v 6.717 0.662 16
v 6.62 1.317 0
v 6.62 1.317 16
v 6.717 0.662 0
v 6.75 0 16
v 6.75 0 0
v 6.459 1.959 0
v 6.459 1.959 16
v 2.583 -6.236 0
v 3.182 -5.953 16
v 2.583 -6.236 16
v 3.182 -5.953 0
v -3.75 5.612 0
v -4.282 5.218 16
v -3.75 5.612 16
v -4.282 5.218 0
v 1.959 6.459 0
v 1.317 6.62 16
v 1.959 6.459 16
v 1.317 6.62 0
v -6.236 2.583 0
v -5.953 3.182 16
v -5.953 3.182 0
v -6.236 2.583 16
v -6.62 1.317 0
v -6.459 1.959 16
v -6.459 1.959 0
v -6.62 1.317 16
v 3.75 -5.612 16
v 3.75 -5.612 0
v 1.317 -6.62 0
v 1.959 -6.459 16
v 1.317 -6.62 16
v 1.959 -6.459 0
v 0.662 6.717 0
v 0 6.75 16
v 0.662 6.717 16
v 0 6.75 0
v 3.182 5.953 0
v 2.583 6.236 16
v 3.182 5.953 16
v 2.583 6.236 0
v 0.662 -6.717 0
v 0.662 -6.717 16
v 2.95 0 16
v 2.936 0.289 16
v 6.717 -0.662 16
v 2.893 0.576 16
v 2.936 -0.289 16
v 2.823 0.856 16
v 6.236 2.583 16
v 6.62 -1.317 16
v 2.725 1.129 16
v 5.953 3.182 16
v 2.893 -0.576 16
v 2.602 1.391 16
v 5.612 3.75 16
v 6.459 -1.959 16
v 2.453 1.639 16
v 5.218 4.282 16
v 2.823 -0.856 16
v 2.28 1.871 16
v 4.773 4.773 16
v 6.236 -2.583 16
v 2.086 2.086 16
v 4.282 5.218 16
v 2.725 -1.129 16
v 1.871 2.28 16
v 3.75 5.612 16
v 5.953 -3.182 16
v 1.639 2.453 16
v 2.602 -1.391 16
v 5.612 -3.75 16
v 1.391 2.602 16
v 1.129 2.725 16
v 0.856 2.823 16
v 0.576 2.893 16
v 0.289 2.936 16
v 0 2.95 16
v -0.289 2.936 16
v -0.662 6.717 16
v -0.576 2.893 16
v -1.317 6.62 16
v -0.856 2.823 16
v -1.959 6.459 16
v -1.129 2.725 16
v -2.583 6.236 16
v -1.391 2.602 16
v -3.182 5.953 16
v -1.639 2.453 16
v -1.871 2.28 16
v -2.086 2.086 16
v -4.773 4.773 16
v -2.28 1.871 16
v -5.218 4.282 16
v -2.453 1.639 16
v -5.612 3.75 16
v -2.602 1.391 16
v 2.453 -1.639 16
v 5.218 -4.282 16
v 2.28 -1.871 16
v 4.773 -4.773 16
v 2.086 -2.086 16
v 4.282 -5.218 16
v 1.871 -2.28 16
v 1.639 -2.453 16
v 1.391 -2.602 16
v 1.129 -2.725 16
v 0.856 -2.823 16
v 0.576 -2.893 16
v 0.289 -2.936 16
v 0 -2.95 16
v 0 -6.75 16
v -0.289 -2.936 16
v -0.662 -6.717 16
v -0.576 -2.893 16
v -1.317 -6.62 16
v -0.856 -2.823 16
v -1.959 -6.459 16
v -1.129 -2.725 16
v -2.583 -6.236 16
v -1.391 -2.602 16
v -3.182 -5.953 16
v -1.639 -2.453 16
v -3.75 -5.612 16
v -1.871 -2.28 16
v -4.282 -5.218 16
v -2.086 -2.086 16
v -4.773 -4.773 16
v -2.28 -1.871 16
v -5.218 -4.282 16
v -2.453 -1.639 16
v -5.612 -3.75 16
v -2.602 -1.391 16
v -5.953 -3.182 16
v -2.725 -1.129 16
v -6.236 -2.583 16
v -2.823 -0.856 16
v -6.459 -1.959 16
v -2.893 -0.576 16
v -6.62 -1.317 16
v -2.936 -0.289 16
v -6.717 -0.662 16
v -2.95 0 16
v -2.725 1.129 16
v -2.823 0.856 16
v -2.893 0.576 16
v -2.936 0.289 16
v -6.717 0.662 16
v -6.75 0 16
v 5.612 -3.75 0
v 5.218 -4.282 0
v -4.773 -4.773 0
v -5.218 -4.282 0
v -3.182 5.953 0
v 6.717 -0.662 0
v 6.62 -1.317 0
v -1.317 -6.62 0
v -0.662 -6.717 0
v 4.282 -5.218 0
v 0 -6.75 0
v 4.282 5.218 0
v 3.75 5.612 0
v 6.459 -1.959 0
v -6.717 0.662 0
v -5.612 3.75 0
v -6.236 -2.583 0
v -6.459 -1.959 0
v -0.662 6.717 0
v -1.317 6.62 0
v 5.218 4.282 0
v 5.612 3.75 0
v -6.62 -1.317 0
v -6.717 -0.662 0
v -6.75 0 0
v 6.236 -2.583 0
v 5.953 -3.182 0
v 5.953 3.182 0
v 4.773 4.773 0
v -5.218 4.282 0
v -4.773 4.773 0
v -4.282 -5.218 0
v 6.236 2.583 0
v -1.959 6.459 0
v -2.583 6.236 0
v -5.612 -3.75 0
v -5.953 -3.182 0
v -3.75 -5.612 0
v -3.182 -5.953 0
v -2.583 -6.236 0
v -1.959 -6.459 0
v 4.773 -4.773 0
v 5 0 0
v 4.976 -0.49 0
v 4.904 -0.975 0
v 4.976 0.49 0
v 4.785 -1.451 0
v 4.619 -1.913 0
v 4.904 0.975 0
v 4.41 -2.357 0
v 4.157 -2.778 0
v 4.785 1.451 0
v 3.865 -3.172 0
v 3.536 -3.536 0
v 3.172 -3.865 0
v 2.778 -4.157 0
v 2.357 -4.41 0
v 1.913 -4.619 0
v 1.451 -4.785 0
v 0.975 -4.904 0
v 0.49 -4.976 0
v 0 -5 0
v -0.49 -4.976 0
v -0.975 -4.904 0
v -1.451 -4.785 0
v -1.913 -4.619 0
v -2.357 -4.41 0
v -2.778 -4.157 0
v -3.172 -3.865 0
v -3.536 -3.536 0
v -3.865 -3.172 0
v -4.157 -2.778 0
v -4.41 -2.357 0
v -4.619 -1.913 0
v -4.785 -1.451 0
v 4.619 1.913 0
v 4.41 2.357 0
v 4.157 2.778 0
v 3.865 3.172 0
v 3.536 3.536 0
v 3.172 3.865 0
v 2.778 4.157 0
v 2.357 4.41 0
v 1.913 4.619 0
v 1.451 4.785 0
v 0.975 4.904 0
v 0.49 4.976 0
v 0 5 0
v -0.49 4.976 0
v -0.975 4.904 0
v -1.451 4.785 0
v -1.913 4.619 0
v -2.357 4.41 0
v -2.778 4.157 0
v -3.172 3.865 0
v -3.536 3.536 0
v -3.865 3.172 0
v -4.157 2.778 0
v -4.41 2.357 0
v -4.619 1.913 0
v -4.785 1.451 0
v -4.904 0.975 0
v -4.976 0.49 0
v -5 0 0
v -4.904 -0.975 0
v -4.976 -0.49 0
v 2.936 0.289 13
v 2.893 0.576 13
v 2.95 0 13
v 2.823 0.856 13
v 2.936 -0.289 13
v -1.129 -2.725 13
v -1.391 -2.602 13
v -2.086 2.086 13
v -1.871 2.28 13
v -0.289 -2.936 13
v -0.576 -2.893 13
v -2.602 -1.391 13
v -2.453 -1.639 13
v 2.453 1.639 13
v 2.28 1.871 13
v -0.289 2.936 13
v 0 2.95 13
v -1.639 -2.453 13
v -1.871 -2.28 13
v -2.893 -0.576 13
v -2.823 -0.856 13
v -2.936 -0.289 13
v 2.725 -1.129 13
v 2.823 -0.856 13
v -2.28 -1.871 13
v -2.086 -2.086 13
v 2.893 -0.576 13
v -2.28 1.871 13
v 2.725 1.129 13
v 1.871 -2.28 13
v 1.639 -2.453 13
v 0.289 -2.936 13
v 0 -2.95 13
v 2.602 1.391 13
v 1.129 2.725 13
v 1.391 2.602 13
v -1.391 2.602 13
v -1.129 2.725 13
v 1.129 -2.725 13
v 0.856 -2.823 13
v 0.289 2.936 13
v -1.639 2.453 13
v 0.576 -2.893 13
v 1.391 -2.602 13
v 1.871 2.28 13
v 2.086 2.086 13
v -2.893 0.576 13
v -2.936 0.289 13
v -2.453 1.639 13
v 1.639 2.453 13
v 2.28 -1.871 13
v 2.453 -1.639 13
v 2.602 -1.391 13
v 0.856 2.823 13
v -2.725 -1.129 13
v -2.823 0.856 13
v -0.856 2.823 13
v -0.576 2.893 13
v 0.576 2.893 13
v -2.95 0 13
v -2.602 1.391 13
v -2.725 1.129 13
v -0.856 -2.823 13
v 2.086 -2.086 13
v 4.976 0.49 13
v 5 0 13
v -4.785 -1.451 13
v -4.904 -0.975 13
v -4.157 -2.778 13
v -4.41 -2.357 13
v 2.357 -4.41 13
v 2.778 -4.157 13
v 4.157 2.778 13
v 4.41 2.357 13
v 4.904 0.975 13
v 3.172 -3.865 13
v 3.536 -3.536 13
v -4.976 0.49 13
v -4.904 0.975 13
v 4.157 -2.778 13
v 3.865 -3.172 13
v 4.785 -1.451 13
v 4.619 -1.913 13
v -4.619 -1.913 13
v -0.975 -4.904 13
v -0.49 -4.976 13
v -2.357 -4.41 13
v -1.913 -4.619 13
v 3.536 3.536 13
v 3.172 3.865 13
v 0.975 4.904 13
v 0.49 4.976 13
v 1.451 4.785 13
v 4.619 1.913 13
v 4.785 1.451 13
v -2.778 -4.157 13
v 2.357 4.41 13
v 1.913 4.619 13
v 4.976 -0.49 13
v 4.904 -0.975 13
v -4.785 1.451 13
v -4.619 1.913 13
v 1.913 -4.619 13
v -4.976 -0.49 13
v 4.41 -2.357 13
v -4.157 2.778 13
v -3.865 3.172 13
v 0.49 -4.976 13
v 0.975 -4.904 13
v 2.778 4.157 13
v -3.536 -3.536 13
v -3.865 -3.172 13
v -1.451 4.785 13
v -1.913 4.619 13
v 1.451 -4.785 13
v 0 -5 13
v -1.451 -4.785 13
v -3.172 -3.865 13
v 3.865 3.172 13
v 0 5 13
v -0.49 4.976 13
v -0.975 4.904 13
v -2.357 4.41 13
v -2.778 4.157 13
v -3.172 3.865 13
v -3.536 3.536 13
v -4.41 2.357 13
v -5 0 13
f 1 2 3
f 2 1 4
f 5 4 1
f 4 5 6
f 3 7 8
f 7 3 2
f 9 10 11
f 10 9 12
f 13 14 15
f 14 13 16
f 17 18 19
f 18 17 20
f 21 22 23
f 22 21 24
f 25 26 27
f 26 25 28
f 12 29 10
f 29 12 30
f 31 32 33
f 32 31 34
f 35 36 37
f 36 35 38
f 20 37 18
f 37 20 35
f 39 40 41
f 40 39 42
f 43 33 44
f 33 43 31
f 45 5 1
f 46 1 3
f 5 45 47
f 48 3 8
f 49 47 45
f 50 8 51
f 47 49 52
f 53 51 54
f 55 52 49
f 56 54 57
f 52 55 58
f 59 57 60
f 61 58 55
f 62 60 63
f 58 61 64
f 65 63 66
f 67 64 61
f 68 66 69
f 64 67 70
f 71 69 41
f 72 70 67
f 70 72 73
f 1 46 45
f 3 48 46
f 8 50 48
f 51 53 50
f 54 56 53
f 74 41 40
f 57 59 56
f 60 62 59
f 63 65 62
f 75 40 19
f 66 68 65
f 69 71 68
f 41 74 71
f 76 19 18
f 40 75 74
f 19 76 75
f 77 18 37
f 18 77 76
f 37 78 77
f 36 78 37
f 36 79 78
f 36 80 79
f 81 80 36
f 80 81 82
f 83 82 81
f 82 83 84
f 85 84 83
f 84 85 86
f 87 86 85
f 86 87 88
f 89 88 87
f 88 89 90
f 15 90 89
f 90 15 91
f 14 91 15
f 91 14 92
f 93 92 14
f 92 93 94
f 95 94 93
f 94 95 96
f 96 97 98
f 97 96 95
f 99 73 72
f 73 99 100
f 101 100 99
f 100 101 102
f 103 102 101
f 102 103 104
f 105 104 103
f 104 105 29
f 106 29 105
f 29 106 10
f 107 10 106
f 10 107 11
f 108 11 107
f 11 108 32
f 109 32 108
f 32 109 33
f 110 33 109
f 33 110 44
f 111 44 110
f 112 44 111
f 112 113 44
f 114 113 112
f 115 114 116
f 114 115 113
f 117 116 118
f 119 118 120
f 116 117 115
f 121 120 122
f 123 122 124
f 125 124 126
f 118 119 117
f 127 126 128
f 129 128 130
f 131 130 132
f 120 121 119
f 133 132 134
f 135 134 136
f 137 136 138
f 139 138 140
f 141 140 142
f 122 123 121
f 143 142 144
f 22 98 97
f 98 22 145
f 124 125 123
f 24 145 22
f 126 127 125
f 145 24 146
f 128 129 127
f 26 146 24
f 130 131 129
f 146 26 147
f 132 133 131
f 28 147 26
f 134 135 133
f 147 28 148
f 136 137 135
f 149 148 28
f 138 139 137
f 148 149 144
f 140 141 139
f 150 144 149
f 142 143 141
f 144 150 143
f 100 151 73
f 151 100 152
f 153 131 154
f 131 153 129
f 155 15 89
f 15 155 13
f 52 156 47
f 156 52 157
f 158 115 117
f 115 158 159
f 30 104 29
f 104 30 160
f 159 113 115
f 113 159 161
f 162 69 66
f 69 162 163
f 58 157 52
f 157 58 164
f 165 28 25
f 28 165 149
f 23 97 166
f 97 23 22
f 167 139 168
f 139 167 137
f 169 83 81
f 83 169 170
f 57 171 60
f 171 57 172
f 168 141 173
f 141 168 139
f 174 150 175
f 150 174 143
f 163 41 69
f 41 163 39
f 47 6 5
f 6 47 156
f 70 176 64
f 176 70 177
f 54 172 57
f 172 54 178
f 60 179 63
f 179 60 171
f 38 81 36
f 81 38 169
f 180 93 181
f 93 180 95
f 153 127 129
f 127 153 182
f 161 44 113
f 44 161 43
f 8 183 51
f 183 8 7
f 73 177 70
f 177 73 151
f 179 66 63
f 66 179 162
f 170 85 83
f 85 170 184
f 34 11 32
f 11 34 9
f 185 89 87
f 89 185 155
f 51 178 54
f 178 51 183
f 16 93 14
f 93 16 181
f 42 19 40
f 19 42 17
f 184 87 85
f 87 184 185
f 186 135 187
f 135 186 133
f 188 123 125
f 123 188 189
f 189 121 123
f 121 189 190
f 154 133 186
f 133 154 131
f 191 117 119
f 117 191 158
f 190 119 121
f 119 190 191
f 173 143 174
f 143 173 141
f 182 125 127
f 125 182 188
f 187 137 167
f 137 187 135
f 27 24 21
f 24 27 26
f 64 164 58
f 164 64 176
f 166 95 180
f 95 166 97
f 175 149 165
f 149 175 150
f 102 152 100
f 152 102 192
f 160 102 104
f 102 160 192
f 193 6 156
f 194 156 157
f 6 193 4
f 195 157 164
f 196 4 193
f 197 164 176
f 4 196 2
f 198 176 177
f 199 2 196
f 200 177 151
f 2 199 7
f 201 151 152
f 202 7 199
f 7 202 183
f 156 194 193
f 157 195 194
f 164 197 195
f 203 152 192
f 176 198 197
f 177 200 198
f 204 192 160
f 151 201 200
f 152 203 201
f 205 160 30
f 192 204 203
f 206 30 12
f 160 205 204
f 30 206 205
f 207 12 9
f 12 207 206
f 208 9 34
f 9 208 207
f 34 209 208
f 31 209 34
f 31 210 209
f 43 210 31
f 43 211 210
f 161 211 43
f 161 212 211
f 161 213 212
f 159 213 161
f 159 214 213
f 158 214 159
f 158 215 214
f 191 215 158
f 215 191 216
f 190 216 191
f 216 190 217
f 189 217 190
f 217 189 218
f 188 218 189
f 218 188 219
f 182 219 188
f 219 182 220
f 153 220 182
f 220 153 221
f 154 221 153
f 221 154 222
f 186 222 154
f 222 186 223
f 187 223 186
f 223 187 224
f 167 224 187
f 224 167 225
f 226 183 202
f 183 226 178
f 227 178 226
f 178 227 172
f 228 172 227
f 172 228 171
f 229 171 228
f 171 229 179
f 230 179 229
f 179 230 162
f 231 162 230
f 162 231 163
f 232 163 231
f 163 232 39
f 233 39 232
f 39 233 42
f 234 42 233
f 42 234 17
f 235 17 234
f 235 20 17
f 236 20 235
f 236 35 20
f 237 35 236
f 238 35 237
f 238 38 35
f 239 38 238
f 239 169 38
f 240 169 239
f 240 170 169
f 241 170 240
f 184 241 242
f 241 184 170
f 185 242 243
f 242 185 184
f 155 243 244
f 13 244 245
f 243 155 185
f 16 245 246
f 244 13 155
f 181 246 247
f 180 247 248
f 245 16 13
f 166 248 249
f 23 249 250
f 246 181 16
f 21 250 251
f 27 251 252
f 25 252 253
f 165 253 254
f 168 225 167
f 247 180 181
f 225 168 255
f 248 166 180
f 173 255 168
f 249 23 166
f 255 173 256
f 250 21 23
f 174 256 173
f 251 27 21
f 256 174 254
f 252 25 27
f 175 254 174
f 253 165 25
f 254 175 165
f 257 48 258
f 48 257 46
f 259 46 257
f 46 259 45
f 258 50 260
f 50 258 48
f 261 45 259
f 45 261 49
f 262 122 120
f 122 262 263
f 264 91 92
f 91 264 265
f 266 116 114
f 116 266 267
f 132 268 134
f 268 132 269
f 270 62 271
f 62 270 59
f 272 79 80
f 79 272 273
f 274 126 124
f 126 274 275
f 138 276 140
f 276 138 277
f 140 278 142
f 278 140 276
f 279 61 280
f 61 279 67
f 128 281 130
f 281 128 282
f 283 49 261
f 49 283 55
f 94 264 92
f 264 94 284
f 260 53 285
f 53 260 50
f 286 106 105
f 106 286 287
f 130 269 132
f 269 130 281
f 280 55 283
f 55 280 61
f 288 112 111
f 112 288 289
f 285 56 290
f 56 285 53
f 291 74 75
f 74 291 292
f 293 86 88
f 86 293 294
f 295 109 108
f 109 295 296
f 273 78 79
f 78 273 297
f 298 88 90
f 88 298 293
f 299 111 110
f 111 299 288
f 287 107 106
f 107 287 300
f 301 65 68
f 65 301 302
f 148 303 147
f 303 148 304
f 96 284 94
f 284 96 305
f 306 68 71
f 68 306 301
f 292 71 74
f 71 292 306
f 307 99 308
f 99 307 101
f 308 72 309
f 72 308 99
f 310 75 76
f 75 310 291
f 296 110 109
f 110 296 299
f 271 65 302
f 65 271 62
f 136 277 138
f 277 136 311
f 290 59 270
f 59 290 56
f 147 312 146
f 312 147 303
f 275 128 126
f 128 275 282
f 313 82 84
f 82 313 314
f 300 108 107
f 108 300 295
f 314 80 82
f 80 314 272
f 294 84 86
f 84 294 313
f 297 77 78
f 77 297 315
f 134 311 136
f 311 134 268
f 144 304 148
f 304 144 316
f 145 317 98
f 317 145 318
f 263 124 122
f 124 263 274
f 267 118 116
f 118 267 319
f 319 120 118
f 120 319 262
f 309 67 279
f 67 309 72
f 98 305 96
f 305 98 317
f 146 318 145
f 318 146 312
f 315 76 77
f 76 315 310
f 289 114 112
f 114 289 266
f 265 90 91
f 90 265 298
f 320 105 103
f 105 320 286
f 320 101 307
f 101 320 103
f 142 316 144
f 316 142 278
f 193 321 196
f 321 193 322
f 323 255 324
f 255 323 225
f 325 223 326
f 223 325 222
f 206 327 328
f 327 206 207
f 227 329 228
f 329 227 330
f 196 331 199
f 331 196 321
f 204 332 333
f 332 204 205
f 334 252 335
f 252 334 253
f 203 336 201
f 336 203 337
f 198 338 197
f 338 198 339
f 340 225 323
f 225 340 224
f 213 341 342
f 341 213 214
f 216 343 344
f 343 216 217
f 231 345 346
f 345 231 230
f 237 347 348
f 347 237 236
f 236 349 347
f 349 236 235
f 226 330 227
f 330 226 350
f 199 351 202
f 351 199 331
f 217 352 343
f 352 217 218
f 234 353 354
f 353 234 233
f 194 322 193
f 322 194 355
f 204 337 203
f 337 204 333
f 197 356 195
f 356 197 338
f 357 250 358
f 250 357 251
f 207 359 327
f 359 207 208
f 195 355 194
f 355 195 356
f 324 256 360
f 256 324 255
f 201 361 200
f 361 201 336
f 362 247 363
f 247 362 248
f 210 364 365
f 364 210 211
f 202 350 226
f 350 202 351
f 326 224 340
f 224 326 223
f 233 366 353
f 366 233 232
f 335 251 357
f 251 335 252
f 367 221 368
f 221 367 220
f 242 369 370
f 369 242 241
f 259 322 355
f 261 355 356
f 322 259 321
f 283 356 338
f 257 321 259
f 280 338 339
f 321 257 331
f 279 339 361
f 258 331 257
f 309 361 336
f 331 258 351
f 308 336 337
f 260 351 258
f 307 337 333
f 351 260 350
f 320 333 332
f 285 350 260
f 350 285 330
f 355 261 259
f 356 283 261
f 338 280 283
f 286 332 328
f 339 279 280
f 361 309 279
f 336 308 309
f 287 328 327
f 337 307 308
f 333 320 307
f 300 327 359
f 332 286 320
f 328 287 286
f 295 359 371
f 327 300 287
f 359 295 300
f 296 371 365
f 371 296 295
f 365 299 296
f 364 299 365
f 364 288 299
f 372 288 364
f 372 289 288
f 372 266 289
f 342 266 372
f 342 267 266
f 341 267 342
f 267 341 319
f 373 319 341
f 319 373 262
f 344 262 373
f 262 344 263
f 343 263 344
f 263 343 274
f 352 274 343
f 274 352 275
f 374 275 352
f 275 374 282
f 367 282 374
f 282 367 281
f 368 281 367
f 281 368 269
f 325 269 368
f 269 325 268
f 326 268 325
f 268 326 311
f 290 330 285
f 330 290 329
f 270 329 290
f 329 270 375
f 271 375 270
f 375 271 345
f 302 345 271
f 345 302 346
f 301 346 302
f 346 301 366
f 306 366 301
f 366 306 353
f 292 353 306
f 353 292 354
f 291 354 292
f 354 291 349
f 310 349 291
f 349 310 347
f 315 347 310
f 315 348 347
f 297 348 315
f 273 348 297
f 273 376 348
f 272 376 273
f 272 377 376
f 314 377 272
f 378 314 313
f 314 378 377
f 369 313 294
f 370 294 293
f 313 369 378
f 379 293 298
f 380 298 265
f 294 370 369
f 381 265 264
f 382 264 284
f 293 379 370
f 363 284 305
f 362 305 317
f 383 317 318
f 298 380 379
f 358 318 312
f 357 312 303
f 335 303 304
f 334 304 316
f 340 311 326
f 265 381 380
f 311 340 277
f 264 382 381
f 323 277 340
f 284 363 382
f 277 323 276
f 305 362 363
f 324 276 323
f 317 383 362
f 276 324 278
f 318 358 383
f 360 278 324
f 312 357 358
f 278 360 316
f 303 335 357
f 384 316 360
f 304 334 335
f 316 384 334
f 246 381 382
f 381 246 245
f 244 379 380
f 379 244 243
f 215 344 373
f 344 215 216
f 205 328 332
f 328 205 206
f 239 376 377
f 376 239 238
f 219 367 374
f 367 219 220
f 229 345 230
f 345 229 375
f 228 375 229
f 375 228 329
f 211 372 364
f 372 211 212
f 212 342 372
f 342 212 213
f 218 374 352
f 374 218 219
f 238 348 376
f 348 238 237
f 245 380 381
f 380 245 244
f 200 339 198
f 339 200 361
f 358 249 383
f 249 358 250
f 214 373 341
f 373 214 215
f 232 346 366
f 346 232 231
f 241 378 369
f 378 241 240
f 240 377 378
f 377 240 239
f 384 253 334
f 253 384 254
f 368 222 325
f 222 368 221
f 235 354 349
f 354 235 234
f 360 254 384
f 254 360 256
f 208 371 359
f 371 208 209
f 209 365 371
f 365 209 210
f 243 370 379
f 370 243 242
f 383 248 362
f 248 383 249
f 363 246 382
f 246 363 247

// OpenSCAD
shaftD = 5.9;

outD = 13.5;

h = 16;

clearD = 10;
clearH = 13;

$fn = 64;

MakeIt();

module MakeIt() {
    difference() {
        
        cylinder(d=outD, h=h);
        
        cylinder(d=shaftD, h=h);
        
        cylinder(d=clearD, h=clearH);
        
    }
}
